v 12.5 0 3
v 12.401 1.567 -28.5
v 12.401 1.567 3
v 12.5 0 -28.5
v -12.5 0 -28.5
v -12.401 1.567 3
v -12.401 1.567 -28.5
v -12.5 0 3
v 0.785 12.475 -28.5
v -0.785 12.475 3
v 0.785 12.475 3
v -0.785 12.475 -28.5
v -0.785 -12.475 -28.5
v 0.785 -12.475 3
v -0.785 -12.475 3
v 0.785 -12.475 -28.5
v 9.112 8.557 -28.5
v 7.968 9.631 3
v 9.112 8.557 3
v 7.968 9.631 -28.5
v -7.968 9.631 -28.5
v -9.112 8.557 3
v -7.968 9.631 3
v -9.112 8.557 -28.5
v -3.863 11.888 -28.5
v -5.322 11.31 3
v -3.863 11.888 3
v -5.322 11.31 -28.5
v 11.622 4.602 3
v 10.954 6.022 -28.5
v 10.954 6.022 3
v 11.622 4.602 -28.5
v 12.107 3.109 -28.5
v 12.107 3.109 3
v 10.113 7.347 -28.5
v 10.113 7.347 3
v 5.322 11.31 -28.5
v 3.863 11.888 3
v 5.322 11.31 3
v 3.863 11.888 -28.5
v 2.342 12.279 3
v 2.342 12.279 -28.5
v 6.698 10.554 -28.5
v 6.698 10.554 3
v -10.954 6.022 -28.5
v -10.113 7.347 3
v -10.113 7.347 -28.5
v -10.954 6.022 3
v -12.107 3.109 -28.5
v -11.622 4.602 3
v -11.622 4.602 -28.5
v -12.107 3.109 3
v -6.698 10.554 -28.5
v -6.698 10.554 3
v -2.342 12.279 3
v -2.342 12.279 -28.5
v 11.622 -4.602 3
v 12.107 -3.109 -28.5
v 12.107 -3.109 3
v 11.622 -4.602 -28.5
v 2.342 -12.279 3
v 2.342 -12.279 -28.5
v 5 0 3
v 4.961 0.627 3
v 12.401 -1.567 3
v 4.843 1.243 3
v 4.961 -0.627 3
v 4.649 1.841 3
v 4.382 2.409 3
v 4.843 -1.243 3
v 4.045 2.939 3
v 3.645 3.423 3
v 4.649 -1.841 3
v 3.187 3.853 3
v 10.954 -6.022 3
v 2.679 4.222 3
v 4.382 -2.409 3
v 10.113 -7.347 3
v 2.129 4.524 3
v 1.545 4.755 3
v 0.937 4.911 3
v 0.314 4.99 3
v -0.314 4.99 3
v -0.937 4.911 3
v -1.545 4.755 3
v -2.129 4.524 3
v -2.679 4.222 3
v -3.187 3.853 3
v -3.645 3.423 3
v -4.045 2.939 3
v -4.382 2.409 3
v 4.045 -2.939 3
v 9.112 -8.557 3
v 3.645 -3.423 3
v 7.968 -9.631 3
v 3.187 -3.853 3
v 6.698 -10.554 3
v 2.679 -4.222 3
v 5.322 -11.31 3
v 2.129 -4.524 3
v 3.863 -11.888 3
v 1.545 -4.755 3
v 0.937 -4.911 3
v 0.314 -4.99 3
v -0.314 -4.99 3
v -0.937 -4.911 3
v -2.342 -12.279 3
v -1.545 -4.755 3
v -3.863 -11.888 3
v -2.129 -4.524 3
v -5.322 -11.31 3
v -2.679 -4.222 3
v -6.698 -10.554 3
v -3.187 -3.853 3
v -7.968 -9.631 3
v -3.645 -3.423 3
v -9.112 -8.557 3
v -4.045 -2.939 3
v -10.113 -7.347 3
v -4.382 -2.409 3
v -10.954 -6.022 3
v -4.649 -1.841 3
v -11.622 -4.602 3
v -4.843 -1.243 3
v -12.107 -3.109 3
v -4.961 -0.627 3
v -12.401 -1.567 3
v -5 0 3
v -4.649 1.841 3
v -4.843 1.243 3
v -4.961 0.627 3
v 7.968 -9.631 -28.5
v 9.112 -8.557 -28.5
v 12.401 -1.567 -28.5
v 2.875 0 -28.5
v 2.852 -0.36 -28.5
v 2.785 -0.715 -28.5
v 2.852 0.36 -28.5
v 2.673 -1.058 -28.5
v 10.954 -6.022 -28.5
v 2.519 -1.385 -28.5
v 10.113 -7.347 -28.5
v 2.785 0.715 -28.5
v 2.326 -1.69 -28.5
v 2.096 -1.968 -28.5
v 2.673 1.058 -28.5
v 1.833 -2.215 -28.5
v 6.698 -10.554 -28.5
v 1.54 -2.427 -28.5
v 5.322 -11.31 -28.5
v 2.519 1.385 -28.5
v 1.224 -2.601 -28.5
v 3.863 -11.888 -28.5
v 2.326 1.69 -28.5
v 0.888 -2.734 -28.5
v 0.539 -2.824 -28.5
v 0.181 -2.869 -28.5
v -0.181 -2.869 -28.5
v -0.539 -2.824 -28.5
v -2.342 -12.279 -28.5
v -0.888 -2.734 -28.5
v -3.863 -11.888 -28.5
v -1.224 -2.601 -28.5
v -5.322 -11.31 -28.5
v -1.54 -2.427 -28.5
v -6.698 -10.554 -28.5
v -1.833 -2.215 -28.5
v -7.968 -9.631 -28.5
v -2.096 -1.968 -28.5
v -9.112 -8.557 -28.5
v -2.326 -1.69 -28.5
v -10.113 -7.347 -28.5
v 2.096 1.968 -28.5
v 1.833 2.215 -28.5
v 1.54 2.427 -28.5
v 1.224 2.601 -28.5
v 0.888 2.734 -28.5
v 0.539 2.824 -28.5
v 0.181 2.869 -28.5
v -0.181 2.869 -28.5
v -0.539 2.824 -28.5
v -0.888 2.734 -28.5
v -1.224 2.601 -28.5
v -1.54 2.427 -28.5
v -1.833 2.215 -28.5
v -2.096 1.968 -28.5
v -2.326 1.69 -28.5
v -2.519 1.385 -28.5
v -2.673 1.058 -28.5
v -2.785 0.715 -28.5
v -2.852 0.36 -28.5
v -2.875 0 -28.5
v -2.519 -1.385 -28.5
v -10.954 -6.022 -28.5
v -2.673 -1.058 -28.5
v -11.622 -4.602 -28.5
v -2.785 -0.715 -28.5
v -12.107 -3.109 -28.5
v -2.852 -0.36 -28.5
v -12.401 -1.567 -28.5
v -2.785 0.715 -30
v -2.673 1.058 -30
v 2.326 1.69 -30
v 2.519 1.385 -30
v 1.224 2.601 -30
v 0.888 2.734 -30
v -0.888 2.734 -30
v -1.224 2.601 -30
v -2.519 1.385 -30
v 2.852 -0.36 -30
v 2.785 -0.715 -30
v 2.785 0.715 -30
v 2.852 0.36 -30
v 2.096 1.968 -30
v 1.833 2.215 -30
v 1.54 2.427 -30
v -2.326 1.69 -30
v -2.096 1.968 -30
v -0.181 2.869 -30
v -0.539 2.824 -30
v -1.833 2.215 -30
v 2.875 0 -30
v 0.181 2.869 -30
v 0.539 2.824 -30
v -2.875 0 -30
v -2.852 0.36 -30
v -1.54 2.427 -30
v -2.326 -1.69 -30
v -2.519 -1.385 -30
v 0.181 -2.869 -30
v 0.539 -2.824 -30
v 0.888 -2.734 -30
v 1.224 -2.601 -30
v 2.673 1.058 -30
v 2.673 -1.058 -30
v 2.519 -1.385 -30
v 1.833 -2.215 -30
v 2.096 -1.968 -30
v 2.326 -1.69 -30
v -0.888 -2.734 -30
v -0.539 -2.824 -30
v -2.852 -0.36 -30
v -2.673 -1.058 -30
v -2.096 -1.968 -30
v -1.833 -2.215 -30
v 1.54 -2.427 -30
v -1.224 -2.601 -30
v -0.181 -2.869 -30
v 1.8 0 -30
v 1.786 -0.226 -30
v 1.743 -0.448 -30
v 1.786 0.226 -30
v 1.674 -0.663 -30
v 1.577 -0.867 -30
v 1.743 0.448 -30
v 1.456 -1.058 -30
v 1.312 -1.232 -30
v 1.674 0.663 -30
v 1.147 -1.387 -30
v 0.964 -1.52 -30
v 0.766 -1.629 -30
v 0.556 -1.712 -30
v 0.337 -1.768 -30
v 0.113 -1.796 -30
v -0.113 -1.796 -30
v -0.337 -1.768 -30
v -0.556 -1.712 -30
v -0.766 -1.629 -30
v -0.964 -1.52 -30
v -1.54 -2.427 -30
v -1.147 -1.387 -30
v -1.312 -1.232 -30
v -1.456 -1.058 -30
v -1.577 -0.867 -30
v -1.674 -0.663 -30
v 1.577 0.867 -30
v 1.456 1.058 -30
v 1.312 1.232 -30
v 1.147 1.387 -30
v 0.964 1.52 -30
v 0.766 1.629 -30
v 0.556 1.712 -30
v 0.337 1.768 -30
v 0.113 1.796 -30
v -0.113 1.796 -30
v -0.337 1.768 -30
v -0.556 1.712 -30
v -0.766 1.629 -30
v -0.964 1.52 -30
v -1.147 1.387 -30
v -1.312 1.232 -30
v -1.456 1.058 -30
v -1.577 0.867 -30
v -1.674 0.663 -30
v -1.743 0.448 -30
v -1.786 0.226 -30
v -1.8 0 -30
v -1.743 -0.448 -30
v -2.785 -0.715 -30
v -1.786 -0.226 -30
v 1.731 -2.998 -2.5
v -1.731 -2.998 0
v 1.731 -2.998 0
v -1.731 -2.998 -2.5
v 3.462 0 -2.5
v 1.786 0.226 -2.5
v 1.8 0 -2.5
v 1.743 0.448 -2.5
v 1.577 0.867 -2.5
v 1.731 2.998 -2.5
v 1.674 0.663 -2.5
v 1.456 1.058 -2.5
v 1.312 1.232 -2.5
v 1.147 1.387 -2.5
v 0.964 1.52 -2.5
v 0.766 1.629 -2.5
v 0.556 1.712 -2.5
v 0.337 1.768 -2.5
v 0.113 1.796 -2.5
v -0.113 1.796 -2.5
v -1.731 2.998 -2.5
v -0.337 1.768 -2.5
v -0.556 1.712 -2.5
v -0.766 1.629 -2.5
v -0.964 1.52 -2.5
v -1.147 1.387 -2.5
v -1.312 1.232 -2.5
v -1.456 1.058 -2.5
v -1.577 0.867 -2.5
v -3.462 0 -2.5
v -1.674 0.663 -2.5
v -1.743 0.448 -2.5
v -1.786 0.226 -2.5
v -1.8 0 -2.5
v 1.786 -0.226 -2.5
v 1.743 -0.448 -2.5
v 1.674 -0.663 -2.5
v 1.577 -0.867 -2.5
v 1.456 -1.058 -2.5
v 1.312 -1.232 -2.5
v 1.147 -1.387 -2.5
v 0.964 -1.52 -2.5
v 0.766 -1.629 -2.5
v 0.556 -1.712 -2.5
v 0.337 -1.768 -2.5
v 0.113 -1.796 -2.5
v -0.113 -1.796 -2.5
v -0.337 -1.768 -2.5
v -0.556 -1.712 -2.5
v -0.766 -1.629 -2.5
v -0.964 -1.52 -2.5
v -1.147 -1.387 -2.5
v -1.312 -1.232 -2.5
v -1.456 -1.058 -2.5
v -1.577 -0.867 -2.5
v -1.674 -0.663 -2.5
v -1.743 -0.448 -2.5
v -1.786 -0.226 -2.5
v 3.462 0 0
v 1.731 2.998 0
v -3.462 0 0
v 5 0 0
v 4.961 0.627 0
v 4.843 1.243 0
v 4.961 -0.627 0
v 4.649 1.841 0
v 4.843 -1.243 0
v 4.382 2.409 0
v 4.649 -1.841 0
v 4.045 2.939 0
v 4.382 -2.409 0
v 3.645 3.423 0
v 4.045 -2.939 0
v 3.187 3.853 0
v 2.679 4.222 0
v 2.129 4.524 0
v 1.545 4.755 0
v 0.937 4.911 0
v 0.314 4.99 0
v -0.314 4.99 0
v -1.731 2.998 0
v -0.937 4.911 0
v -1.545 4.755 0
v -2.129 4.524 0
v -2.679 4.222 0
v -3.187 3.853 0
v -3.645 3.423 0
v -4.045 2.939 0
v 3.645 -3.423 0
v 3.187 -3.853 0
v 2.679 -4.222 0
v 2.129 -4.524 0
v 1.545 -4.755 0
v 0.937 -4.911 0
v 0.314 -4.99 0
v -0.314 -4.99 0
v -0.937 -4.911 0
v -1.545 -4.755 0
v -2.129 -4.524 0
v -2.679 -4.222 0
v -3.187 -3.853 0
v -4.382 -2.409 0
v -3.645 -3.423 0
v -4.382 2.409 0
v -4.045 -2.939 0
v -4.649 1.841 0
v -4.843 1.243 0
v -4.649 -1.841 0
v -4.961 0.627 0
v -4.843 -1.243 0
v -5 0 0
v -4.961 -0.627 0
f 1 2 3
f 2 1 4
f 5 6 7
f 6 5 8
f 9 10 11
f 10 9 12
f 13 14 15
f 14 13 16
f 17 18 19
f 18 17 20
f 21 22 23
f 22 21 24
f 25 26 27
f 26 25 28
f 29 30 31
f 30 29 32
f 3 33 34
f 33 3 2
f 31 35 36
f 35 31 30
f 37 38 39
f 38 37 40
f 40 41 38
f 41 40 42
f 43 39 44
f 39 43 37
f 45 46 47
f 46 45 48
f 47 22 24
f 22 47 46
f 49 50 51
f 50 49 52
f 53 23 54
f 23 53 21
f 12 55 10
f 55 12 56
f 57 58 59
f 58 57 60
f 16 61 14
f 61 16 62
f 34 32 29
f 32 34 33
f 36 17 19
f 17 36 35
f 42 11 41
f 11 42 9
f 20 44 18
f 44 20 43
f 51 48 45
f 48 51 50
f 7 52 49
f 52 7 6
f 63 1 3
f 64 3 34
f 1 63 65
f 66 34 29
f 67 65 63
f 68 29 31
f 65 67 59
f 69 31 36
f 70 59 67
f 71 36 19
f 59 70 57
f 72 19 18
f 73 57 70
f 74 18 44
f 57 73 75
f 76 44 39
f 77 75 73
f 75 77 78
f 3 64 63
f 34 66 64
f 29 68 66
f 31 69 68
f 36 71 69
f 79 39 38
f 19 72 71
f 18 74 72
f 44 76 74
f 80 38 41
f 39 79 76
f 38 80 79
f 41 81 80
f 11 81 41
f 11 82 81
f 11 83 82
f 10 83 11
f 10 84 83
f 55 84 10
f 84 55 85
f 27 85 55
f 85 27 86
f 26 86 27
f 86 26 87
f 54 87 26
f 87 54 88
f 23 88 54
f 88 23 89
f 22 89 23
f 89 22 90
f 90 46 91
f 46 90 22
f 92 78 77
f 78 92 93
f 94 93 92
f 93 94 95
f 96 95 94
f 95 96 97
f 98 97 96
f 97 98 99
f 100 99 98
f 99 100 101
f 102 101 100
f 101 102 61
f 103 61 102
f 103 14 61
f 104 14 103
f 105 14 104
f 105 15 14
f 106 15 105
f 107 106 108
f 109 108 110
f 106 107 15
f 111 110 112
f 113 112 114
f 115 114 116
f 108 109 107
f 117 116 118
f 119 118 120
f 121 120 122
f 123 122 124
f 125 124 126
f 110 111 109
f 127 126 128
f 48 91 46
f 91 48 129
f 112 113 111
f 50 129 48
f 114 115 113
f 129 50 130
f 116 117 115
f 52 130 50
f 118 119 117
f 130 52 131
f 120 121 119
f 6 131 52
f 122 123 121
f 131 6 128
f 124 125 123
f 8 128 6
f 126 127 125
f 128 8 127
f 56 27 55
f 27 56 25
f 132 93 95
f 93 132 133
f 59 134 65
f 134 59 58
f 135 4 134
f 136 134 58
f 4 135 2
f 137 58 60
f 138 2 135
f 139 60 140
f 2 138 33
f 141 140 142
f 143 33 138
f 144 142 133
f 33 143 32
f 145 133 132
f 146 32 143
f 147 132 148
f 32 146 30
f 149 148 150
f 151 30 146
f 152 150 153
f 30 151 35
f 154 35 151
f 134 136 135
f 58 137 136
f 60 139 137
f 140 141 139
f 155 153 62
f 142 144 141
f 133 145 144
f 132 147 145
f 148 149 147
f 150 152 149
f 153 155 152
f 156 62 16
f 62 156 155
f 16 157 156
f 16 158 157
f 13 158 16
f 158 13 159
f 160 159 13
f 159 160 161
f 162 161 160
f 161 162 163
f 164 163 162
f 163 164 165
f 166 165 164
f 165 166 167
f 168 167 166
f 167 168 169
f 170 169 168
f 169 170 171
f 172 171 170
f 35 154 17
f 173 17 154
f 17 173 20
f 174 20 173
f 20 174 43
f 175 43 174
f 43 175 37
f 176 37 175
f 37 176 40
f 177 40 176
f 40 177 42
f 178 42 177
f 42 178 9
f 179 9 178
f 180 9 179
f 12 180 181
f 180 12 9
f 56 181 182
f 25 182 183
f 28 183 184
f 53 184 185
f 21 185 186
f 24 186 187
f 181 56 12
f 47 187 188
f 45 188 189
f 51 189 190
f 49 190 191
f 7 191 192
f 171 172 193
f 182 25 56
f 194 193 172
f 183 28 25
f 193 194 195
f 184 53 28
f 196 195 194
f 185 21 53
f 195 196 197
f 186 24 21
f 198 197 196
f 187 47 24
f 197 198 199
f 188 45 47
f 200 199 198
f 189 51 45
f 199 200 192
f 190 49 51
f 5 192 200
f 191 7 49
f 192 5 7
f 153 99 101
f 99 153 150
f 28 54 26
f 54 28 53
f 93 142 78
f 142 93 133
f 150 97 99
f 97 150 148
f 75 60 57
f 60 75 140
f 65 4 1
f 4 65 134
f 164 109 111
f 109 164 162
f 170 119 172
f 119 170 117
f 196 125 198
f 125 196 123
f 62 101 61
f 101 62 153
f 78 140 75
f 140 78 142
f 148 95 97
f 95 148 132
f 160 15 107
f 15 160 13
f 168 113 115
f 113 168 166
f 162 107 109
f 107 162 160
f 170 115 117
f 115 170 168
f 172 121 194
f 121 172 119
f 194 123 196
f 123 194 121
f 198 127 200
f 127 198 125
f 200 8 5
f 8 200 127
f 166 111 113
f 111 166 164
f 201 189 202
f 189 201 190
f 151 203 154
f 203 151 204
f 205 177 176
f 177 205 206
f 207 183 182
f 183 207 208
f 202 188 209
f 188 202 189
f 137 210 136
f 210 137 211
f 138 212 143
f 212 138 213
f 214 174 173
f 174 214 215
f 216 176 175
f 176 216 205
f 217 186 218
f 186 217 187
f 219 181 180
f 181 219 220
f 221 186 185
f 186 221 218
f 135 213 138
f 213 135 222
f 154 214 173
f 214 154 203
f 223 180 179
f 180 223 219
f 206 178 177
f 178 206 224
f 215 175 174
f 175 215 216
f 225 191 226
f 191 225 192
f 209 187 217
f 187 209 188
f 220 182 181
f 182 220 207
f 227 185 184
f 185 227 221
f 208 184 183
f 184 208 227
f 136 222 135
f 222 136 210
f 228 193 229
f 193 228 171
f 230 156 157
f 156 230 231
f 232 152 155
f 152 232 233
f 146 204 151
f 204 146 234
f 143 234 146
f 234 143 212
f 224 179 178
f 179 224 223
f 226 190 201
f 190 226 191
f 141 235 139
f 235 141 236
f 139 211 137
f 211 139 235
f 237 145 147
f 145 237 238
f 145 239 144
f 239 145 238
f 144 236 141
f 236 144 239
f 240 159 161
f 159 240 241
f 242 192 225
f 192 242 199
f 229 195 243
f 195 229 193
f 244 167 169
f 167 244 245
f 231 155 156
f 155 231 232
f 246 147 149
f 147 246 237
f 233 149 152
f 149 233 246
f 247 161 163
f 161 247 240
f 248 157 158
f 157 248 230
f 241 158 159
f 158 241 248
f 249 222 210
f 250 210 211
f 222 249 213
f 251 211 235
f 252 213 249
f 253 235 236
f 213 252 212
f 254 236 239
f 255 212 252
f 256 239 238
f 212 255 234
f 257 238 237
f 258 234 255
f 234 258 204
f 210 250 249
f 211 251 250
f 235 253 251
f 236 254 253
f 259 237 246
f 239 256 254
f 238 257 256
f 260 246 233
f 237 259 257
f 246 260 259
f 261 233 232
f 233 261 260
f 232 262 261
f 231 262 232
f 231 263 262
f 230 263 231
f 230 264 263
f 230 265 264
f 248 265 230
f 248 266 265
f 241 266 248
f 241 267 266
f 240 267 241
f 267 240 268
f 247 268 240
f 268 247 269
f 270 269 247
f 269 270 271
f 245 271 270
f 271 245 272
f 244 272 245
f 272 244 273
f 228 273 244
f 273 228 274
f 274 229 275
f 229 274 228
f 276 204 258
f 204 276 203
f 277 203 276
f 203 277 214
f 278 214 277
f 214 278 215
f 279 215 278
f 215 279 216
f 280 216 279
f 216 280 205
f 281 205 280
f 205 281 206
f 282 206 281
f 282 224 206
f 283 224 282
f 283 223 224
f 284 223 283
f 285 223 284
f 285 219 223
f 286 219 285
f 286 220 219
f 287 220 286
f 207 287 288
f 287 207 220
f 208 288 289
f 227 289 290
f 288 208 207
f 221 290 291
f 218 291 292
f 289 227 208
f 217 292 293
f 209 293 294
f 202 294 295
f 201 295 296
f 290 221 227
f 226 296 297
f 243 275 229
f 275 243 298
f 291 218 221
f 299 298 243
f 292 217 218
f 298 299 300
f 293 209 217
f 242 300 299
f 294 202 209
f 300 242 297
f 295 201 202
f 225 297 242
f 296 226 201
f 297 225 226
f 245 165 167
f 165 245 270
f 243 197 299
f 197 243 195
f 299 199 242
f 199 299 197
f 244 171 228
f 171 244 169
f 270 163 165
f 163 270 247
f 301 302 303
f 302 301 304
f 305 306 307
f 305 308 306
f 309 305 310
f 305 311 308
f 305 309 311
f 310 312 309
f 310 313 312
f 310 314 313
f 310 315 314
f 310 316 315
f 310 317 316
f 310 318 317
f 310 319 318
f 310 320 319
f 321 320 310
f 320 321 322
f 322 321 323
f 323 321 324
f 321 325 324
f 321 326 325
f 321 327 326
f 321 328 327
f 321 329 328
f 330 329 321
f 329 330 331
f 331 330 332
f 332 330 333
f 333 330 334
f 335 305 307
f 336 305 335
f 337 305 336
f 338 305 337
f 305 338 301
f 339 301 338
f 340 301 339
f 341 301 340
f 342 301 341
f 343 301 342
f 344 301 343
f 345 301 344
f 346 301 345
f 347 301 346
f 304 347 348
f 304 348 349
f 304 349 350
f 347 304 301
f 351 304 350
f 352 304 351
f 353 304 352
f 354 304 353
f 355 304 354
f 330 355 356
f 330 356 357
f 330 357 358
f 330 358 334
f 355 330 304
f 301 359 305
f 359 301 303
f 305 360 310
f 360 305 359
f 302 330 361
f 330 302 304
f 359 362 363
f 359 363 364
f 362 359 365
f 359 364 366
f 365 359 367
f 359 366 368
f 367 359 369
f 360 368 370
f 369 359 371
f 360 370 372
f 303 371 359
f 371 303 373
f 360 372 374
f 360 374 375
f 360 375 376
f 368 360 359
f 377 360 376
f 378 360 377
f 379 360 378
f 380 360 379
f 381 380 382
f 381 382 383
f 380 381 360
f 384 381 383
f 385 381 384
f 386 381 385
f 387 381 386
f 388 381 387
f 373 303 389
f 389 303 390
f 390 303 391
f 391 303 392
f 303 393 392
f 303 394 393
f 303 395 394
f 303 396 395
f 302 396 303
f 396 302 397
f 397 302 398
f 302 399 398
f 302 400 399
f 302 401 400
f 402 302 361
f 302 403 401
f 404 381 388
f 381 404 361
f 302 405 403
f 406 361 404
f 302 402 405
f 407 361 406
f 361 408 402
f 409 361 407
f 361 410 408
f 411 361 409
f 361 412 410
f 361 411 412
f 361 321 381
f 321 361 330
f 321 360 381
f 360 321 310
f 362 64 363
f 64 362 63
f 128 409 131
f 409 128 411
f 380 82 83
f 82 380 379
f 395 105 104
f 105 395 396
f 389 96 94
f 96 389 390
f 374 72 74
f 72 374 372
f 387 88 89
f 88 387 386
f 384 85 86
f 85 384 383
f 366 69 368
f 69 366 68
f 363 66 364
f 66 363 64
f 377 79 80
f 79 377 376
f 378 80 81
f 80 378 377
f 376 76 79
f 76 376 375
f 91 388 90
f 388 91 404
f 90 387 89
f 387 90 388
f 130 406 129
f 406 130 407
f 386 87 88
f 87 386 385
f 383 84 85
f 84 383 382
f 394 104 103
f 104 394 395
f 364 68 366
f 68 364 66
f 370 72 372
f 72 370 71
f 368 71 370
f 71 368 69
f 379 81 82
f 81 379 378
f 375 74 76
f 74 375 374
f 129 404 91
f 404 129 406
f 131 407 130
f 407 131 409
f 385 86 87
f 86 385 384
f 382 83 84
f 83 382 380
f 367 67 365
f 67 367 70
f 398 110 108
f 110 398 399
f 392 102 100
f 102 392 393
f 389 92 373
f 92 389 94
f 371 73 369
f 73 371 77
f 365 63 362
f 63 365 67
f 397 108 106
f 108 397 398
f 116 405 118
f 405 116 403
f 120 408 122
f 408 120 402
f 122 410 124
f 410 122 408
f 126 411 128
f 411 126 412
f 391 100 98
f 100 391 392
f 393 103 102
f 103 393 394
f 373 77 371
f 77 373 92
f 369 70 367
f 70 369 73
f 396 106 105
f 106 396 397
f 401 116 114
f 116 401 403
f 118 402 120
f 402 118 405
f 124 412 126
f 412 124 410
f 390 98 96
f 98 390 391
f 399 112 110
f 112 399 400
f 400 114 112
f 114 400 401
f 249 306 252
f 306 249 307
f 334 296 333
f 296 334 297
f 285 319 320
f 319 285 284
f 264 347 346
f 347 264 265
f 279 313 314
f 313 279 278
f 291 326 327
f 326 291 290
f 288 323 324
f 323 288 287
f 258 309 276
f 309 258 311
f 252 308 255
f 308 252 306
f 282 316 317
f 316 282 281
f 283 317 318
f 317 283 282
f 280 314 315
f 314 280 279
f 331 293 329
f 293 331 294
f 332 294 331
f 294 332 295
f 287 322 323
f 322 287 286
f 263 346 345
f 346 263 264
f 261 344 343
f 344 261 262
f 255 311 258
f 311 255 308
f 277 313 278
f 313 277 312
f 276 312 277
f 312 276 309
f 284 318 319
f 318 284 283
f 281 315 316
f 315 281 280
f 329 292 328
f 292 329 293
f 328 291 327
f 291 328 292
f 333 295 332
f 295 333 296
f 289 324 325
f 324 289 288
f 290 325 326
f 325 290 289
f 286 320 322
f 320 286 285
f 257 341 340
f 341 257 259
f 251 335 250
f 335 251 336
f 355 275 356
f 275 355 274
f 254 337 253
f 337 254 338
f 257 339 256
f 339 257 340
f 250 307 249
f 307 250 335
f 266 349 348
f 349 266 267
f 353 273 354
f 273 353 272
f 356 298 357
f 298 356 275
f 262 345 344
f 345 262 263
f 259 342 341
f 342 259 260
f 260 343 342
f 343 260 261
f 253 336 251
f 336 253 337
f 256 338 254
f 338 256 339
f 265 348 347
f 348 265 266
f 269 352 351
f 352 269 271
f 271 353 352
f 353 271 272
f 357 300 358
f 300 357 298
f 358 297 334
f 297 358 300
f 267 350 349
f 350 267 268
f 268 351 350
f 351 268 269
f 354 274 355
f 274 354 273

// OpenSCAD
$fn = 50;

difference() {
	union() {
		translate(v = [0, 0, -28.5]) {
			cylinder(h = 31.5, r = 12.5);
		}
		#translate(v = [0, 0, -30.0]) {
			cylinder(h = 30, r = 2.875);
		}
	}
	union() {
		translate(v = [0, 0, 0]) {
			rotate(a = [0, 0, 0]) {
				difference() {
					union() {
						translate(v = [0, 0, -2.5]) {
							linear_extrude(height = 2.5) {
								polygon(points = [[3.4619999999999997, 0.0], [1.7310000000000003, 2.9981799479017264], [-1.7309999999999992, 2.9981799479017264], [-3.4619999999999997, 4.2397272186481365e-16], [-1.7310000000000014, -2.998179947901726], [1.7309999999999977, -2.9981799479017277]]);
							}
						}
					}
					union();
				}
			}
		}
		#cylinder(h = 3, r = 5.0);
		#translate(v = [0, 0, -100.0]) {
			cylinder(h = 200, r = 1.8);
		}
	}
}
